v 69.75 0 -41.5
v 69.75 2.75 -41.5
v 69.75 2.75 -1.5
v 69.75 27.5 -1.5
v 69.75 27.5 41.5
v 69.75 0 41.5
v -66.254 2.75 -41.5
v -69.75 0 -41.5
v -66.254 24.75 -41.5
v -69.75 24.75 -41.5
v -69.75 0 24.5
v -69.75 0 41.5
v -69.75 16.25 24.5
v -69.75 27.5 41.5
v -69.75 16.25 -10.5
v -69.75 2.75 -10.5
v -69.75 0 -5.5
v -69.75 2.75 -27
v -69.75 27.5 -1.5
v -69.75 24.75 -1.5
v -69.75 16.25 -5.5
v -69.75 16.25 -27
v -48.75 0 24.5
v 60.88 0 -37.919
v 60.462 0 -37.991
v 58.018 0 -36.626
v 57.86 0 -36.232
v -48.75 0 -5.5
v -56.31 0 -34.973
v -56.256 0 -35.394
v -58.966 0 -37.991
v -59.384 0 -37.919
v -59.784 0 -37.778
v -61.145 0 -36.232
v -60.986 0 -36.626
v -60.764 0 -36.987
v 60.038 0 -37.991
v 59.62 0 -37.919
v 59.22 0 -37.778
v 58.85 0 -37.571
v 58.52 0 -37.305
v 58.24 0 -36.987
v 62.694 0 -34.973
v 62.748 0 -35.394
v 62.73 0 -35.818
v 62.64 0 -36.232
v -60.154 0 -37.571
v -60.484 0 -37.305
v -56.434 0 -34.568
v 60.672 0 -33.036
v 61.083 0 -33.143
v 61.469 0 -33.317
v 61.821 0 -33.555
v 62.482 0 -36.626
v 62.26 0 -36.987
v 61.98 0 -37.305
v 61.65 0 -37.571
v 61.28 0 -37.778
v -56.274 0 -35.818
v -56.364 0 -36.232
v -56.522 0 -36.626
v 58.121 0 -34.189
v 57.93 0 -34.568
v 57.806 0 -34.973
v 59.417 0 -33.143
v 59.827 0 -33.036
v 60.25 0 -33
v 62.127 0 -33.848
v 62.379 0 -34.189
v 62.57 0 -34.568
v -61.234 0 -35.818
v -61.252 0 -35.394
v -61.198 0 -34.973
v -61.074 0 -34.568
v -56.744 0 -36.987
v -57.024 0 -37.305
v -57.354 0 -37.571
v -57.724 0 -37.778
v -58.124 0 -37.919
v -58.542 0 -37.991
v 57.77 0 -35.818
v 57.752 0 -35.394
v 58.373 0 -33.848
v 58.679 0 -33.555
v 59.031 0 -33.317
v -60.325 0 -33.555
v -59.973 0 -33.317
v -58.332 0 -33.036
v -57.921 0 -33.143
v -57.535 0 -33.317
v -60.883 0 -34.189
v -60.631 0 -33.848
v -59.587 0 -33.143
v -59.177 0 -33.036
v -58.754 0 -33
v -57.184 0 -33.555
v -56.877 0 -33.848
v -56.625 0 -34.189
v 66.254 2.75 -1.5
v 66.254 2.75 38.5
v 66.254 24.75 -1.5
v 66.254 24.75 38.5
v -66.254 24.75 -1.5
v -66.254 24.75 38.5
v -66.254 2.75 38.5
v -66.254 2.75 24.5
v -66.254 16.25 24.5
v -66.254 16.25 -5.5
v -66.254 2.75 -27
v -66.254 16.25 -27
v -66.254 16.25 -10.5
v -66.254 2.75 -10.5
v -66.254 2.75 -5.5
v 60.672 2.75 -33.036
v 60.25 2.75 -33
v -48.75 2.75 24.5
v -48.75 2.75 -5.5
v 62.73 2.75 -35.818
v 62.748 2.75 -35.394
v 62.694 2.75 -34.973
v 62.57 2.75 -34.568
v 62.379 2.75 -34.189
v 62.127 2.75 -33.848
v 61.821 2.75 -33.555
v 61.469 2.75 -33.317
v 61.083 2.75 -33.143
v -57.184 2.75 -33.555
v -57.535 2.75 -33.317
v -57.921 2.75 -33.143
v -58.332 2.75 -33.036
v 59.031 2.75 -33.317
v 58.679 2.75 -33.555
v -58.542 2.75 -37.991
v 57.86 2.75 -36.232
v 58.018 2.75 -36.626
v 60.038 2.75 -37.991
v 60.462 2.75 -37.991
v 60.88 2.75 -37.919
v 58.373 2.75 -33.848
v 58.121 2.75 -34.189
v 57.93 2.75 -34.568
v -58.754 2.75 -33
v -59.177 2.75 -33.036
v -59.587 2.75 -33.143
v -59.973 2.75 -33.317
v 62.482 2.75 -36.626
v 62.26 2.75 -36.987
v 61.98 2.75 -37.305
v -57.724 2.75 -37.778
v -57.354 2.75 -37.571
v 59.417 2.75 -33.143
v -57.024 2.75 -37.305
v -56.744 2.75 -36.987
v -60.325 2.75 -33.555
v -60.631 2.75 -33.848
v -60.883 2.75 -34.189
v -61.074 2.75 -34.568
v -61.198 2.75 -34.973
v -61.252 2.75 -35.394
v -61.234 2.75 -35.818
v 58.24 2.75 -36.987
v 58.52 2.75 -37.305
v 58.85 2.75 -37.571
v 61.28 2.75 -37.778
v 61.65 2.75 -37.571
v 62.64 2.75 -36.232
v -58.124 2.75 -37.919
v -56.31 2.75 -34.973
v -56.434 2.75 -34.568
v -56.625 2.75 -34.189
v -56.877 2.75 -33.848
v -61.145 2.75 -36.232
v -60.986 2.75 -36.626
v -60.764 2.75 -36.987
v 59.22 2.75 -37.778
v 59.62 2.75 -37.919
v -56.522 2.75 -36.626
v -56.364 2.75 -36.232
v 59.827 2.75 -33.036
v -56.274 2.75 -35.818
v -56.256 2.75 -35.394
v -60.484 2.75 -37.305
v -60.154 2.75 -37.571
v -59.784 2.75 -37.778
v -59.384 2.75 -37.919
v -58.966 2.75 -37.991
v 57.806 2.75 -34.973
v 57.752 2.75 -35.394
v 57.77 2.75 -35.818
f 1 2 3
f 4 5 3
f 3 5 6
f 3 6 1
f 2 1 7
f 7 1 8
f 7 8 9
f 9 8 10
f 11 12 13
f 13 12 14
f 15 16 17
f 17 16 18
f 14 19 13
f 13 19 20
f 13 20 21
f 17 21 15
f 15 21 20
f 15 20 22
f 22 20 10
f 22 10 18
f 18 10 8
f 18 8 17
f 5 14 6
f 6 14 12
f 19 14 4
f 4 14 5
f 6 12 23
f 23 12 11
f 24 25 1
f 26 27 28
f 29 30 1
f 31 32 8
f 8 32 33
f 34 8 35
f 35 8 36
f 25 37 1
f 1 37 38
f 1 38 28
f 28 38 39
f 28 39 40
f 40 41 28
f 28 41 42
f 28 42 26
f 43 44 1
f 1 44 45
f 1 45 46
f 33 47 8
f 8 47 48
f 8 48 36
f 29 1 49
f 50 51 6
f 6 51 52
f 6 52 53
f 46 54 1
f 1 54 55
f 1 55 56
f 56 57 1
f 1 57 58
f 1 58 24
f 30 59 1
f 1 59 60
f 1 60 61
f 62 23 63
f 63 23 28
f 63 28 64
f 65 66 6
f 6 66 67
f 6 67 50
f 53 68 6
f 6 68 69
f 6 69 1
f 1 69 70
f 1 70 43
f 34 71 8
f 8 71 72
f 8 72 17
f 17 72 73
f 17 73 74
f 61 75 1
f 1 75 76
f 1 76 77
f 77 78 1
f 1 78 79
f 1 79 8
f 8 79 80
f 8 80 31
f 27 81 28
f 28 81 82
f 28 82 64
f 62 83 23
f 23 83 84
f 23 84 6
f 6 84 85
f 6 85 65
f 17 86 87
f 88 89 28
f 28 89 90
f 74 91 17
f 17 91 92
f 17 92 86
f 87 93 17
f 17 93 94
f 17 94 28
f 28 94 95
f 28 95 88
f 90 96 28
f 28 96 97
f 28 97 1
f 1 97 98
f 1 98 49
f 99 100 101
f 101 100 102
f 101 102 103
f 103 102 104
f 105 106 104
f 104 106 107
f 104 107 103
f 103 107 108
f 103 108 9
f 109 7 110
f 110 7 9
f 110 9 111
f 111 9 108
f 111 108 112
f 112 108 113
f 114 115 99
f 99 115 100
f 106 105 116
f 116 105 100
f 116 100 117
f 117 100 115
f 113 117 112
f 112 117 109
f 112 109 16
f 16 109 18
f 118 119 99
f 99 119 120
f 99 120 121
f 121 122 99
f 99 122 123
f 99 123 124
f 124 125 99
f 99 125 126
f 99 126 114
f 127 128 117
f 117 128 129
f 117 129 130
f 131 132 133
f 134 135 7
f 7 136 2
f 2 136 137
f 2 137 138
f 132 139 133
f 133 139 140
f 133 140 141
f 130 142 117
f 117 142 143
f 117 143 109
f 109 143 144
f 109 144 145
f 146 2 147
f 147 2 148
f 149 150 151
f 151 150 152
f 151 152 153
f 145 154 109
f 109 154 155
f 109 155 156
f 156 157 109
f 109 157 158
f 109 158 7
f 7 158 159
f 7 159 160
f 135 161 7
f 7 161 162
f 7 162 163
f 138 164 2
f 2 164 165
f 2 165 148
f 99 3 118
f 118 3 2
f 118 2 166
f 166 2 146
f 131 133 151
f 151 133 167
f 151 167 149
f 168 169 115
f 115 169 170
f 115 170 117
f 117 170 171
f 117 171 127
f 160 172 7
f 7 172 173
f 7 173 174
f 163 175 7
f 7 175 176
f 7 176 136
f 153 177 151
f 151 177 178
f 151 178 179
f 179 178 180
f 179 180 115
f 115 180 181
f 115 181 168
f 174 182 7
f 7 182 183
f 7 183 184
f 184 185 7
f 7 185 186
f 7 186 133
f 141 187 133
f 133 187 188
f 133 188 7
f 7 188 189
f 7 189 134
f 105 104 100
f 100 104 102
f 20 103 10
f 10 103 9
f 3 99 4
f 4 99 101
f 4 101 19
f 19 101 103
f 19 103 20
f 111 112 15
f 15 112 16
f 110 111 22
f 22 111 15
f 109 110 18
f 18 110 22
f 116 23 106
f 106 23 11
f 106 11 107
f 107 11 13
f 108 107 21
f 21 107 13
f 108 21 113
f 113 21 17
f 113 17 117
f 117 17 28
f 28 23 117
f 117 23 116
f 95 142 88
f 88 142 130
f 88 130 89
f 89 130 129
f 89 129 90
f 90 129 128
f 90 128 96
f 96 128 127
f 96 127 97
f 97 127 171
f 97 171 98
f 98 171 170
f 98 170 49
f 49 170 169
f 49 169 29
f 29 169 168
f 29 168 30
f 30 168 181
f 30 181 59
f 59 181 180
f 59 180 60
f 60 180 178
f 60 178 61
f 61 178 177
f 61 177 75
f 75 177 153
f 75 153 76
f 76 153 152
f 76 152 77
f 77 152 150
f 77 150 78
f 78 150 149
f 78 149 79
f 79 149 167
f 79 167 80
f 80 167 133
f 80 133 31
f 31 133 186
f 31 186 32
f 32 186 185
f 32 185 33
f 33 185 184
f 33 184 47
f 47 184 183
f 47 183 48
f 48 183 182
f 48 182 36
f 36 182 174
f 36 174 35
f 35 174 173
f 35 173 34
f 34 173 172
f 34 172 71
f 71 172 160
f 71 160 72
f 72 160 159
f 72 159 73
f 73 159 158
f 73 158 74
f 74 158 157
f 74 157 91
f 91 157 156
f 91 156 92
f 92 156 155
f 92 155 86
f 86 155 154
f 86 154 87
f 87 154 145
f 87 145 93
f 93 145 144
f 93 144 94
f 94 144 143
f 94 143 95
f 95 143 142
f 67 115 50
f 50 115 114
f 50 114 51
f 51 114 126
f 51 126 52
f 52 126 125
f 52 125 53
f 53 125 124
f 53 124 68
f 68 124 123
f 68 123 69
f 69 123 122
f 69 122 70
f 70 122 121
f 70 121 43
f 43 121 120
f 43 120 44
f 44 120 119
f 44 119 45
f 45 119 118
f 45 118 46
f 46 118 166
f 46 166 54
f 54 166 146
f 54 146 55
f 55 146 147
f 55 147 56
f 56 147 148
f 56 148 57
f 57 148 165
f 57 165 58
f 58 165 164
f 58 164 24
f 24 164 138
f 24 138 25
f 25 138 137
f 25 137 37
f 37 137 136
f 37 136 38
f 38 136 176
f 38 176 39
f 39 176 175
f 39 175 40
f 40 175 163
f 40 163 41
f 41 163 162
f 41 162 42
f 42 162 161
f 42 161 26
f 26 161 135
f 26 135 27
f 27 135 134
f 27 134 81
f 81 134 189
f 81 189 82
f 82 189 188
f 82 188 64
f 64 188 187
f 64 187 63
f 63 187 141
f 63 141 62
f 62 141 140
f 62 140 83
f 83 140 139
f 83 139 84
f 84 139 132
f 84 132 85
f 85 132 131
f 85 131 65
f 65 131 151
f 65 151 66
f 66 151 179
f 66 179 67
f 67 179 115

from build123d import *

# Parameters (mm, degrees)
CROQUIS1_W                = 139.5
CROQUIS1_H                = 83
SALIENTE_EXTRUIR1_DEPTH   = 27.5
CORTAR_EXTRUIR1_START     = -66.254131909
CORTAR_EXTRUIR1_OUTLINE_W = 22
CORTAR_EXTRUIR1_OUTLINE_H = 80
CORTAR_EXTRUIR1_DEPTH     = 132.508263818
CORTAR_EXTRUIR2_DEPTH     = 40
CROQUIS6_W                = 30
CROQUIS6_H                = 13.5
CROQUIS6_W_2              = 16.5
CORTAR_EXTRUIR3_DEPTH     = 3.495868091
CROQUIS7_R                = 2.5
CROQUIS7_W                = 21
CROQUIS7_H                = 30
CORTAR_EXTRUIR4_DEPTH     = 85.85207717


# Read off the part's stored shape, not the designer's step: Cortar-Extruir1
with BuildPart() as part:
    # Croquis1 → Saliente-Extruir1 (new body)
    with BuildSketch(Plane(origin=(0, 0, 0), x_dir=(1, 0, 0), z_dir=(0, 1, 0))):
        Rectangle(CROQUIS1_W, CROQUIS1_H)
    extrude(amount=SALIENTE_EXTRUIR1_DEPTH)

    # Cortar-Extruir1 outline → Cortar-Extruir1 (cut)
    with BuildSketch(Plane.YZ.offset(CORTAR_EXTRUIR1_START)):
        with Locations((13.75, -1.5)):
            Rectangle(CORTAR_EXTRUIR1_OUTLINE_W, CORTAR_EXTRUIR1_OUTLINE_H)
    extrude(amount=CORTAR_EXTRUIR1_DEPTH, mode=Mode.SUBTRACT)

    # Croquis3 → Cortar-Extruir2 (cut)
    with BuildSketch(Plane(origin=(0, 0, -41.5), x_dir=(-1, 0, 0), z_dir=(0, 0, -1))):
        Polygon((-66.254131909, 24.75), (67.373989774, 24.75), (69.75, 24.75), (69.75, 27.5), (67.373989774, 27.5), (-64.5, 27.5), (-69.75, 27.5), (-69.75, 23.25), (-69.75, 2.75), (-66.254131909, 2.75), align=None)
    extrude(amount=-CORTAR_EXTRUIR2_DEPTH, mode=Mode.SUBTRACT)

    # Croquis6 → Cortar-Extruir3 (cut)
    with BuildSketch(Plane(origin=(-66.254131909, 0, 0), x_dir=(0, 0, -1), z_dir=(1, 0, 0))):
        with Locations((-9.5, 9.5)):
            Rectangle(CROQUIS6_W, CROQUIS6_H)
        with Locations((18.75, 9.5)):
            Rectangle(CROQUIS6_W_2, CROQUIS6_H)
    extrude(amount=-CORTAR_EXTRUIR3_DEPTH, mode=Mode.SUBTRACT)

    # Croquis7 → Cortar-Extruir4 (cut, through all)
    with BuildSketch(Plane(origin=(0, 2.75, 0), x_dir=(1, 0, 0), z_dir=(0, 1, 0))):
        with Locations(Location((-58.754131909, 35.5, 0), (0, 0, 270))):
            Circle(CROQUIS7_R)
        with Locations(Location((60.25, 35.5, 0), (0, 0, 270))):
            Circle(CROQUIS7_R)
        with Locations((-59.25, -9.5)):
            Rectangle(CROQUIS7_W, CROQUIS7_H)
    extrude(amount=-CORTAR_EXTRUIR4_DEPTH, mode=Mode.SUBTRACT)


solid = part.part
